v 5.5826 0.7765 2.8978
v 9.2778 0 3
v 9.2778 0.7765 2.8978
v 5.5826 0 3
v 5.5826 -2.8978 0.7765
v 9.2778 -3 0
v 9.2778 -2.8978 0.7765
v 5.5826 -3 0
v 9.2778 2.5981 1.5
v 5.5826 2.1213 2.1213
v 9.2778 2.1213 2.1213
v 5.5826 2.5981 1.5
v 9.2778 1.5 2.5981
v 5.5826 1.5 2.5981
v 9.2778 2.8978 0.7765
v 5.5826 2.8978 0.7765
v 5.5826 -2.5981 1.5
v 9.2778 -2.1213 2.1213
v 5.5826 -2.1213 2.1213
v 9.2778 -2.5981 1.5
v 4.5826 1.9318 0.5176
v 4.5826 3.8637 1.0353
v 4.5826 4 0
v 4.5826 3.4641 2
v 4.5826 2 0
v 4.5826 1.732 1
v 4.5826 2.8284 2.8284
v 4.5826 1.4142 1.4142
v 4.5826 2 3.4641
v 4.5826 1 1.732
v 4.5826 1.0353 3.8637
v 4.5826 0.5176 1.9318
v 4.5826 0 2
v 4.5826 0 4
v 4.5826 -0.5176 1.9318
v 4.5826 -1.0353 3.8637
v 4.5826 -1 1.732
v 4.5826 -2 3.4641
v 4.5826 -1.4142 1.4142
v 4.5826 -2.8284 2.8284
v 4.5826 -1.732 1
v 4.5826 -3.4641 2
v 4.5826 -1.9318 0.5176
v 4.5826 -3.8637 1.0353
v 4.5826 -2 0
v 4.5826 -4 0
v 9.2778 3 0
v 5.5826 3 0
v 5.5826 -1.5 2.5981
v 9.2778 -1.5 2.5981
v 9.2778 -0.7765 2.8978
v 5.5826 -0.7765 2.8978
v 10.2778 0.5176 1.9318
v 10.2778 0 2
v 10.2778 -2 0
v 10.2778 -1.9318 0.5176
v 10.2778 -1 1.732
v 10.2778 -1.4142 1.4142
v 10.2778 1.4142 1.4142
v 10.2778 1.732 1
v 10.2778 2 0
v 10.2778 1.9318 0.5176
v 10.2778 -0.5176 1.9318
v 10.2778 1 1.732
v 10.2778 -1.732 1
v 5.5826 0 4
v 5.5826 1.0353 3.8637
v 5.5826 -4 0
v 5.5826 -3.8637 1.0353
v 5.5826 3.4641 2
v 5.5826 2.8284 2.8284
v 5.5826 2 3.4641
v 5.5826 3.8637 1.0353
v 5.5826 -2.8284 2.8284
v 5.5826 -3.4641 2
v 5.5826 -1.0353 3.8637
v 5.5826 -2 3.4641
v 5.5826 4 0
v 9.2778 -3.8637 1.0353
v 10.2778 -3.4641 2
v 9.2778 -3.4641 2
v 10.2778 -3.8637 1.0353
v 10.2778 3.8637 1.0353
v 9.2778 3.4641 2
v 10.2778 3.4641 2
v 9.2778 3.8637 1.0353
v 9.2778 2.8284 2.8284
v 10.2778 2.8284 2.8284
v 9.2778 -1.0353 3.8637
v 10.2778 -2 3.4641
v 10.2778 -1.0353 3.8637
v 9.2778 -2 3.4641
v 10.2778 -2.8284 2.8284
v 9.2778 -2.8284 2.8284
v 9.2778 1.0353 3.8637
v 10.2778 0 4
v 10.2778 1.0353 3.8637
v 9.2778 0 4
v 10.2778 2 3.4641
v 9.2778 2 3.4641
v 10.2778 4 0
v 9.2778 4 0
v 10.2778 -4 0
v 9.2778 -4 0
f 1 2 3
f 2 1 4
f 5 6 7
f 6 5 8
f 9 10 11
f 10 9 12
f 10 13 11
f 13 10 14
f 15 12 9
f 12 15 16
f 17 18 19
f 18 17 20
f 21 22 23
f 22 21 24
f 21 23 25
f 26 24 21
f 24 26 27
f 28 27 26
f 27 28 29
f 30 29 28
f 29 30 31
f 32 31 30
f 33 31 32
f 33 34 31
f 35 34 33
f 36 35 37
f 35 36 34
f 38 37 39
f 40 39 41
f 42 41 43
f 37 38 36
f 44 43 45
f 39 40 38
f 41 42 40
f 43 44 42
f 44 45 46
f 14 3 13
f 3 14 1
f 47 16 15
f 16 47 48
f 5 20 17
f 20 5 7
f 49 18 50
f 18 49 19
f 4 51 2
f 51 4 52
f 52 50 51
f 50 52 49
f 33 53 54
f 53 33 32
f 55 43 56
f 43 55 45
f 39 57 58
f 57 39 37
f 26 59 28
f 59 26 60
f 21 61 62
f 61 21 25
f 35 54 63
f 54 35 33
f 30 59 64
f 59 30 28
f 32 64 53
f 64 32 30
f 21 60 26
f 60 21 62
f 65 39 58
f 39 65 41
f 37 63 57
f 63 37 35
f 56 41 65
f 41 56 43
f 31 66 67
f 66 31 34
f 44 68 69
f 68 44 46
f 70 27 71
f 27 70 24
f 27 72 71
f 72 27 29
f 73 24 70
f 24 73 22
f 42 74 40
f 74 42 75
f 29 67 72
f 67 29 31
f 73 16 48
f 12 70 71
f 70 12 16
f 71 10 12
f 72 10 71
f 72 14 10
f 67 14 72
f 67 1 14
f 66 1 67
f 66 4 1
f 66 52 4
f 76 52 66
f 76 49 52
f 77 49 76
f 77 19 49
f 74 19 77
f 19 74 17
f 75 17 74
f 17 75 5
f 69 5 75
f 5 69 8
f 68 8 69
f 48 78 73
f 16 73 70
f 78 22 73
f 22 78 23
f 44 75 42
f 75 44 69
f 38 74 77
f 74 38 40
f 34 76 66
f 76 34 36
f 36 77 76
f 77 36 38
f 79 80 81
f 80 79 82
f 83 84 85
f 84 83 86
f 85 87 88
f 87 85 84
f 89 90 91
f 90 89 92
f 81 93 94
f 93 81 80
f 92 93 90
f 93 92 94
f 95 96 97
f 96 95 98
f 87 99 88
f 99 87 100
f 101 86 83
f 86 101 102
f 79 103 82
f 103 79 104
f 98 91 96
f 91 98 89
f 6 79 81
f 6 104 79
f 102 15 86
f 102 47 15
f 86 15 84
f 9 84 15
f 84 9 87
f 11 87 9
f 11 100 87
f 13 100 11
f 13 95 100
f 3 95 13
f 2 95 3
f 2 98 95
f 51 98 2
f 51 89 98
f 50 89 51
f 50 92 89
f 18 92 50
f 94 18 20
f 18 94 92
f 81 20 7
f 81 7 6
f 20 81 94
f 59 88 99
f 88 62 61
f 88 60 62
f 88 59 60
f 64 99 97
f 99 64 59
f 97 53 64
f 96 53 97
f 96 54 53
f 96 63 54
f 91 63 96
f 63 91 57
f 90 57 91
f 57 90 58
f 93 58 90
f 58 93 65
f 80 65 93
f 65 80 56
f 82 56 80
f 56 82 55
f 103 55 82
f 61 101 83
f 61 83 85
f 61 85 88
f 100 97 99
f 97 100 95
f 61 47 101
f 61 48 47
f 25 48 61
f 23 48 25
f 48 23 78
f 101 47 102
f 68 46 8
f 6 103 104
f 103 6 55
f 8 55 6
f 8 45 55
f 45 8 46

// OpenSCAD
// file: ../build_environments.scad
// build_environments.scad: modules to build level sections
//

module pool(diameter=10.0, wall_height=2.0, step_width=3.0, connections=[])
{
    difference() {
        union() {
        difference() {
            cylinder(h=0.5,r1=diameter+step_width,r2=diameter+step_width,$fn=48);
            translate([0,0,-0.1])
                cylinder(h=0.7,r1=diameter,r2=diameter,$fn=48);
        }
        difference() {
            cylinder(h=wall_height,r1=diameter+step_width+1.0,r2=diameter+step_width+1.0,$fn=48);
            translate([0,0,-0.1])
                cylinder(h=wall_height+0.2,r1=diameter+step_width,r2=diameter+step_width,$fn=48);
        }
        }
    
        for (c = connections)
        {
            rotate([0,90,0]) {
                angle = atan2(c[1],c[0]);
                rotate([-angle,0,0]) {
                    cylinder(h=diameter+5.0,r1=c[2],r2=c[2],$fn=48);
                }
            }
        }
    }
}

module straight(length=10.0, width=2.0, dy1=0.0, dy2=0.0, dz=0.0)
{
    dims = [0, 0, 0, 0, 0, (dz/length)];
    matrix = [
        [ 1, dims[0], dims[1], 0 ],
        [ dims[2], 1, dims[4], 0 ],
        [ dims[5], dims[3], 1, 0 ],
        [ 0, 0, 0, 1 ]
    ];
    multmatrix(matrix)
    difference() {
        translate([dy1,0,0])
        union() {
            rotate([0,90,0]) {
                difference() {
                    cylinder(h=(length-dy1-dy2),r1=width+1.0,r2=width+1.0,$fn=24);
                    translate([0,0,-0.1])
                        cylinder(h=(length-dy1-dy2+0.2),r1=width,r2=width,$fn=24);
                }
                difference() {
                    cylinder(h=1.0,r1=width+2.0,r2=width+2.0,$fn=24);
                    translate([0,0,-0.1])
                        cylinder(h=1.2,r1=width,r2=width,$fn=24);
                }
                translate([0,0,(length-dy1-dy2)-1.0]) {
                    difference() {
                        cylinder(h=1.0,r1=width+2.0,r2=width+2.0,$fn=24);
                        translate([0,0,-0.1])
                            cylinder(h=1.2,r1=width,r2=width,$fn=24);
                    }
                }
            }
        }
        translate([0,0,-(2*width+4.0)/2])
            cube([3*length,3*length,2*width+4.0],center=true);
    }
}

module curve(p0=[0,0], center=[0,0], dir=1, angle=0.0, width=2.0)
{
    radius = sqrt((p0[0]-center[0])*(p0[0]-center[0]) + (p0[1]-center[1])*(p0[1]-center[1]));
    if (dir == 0) {
        difference() {
            rotate([0,0,-90])
            difference() {
                rotate_extrude(angle = angle, convexity = 10, $fn=32)
                    translate([radius, 0, 0])
                        circle(r = width+1.0,$fn=24);
                rotate([0,0,-1.0])
                    rotate_extrude(angle = angle+2.0, convexity = 10, $fn=32)
                        translate([radius, 0, 0])
                            circle(r = width,$fn=24);
            }
            translate([0,0,-(2*width+4.0)/2])
                cube([5*radius,5*radius,2*width+4.0],center=true);
        }
    }
    else {
        difference() {
            rotate([0,0,90])
            difference() {
                rotate_extrude(angle = -angle, convexity = 10, $fn=32)
                    translate([radius, 0, 0])
                        circle(r = width+1.0,$fn=24);
                rotate([0,0,1.0])
                    rotate_extrude(angle = -angle-2.0, convexity = 10, $fn=32)
                        translate([radius, 0, 0])
                            circle(r = width,$fn=24);
            }
            translate([0,0,-(2*width+4.0)/2])
                cube([5*radius,5*radius,2*width+4.0],center=true);
        }
    }

}

// test pool
//pool(diameter=12.0000, wall_height=3.0000, step_width=3.0000, connections=[[0.0000,-26.0000,2.0000], [23.6074,0.0000,2.0000]]);

// test straight, slope
//straight(length=26.0000, width=2.0000, dy1=11.8322, dy2=6.7082, dz=0.0000);
//straight(length=29.1549, width=12.0000, dy1=0.0000, dy2=0.0000, dz=-15.0000);

// test curve
//curve(p0=[23.6074, 0.0000], center=[23.6074, 5.0000], dir=0, angle=60.1011, width=2.0000);
//curve(p0=[33.6426, 12.4219], center=[37.9771, 9.9295], dir=1, angle=120.4627, width=2.0000);
// main file
use <../build_environments.scad>;
straight(length=10.2778, width=2.0000, dy1=4.5826, dy2=0.0000, dz=0.0000);
